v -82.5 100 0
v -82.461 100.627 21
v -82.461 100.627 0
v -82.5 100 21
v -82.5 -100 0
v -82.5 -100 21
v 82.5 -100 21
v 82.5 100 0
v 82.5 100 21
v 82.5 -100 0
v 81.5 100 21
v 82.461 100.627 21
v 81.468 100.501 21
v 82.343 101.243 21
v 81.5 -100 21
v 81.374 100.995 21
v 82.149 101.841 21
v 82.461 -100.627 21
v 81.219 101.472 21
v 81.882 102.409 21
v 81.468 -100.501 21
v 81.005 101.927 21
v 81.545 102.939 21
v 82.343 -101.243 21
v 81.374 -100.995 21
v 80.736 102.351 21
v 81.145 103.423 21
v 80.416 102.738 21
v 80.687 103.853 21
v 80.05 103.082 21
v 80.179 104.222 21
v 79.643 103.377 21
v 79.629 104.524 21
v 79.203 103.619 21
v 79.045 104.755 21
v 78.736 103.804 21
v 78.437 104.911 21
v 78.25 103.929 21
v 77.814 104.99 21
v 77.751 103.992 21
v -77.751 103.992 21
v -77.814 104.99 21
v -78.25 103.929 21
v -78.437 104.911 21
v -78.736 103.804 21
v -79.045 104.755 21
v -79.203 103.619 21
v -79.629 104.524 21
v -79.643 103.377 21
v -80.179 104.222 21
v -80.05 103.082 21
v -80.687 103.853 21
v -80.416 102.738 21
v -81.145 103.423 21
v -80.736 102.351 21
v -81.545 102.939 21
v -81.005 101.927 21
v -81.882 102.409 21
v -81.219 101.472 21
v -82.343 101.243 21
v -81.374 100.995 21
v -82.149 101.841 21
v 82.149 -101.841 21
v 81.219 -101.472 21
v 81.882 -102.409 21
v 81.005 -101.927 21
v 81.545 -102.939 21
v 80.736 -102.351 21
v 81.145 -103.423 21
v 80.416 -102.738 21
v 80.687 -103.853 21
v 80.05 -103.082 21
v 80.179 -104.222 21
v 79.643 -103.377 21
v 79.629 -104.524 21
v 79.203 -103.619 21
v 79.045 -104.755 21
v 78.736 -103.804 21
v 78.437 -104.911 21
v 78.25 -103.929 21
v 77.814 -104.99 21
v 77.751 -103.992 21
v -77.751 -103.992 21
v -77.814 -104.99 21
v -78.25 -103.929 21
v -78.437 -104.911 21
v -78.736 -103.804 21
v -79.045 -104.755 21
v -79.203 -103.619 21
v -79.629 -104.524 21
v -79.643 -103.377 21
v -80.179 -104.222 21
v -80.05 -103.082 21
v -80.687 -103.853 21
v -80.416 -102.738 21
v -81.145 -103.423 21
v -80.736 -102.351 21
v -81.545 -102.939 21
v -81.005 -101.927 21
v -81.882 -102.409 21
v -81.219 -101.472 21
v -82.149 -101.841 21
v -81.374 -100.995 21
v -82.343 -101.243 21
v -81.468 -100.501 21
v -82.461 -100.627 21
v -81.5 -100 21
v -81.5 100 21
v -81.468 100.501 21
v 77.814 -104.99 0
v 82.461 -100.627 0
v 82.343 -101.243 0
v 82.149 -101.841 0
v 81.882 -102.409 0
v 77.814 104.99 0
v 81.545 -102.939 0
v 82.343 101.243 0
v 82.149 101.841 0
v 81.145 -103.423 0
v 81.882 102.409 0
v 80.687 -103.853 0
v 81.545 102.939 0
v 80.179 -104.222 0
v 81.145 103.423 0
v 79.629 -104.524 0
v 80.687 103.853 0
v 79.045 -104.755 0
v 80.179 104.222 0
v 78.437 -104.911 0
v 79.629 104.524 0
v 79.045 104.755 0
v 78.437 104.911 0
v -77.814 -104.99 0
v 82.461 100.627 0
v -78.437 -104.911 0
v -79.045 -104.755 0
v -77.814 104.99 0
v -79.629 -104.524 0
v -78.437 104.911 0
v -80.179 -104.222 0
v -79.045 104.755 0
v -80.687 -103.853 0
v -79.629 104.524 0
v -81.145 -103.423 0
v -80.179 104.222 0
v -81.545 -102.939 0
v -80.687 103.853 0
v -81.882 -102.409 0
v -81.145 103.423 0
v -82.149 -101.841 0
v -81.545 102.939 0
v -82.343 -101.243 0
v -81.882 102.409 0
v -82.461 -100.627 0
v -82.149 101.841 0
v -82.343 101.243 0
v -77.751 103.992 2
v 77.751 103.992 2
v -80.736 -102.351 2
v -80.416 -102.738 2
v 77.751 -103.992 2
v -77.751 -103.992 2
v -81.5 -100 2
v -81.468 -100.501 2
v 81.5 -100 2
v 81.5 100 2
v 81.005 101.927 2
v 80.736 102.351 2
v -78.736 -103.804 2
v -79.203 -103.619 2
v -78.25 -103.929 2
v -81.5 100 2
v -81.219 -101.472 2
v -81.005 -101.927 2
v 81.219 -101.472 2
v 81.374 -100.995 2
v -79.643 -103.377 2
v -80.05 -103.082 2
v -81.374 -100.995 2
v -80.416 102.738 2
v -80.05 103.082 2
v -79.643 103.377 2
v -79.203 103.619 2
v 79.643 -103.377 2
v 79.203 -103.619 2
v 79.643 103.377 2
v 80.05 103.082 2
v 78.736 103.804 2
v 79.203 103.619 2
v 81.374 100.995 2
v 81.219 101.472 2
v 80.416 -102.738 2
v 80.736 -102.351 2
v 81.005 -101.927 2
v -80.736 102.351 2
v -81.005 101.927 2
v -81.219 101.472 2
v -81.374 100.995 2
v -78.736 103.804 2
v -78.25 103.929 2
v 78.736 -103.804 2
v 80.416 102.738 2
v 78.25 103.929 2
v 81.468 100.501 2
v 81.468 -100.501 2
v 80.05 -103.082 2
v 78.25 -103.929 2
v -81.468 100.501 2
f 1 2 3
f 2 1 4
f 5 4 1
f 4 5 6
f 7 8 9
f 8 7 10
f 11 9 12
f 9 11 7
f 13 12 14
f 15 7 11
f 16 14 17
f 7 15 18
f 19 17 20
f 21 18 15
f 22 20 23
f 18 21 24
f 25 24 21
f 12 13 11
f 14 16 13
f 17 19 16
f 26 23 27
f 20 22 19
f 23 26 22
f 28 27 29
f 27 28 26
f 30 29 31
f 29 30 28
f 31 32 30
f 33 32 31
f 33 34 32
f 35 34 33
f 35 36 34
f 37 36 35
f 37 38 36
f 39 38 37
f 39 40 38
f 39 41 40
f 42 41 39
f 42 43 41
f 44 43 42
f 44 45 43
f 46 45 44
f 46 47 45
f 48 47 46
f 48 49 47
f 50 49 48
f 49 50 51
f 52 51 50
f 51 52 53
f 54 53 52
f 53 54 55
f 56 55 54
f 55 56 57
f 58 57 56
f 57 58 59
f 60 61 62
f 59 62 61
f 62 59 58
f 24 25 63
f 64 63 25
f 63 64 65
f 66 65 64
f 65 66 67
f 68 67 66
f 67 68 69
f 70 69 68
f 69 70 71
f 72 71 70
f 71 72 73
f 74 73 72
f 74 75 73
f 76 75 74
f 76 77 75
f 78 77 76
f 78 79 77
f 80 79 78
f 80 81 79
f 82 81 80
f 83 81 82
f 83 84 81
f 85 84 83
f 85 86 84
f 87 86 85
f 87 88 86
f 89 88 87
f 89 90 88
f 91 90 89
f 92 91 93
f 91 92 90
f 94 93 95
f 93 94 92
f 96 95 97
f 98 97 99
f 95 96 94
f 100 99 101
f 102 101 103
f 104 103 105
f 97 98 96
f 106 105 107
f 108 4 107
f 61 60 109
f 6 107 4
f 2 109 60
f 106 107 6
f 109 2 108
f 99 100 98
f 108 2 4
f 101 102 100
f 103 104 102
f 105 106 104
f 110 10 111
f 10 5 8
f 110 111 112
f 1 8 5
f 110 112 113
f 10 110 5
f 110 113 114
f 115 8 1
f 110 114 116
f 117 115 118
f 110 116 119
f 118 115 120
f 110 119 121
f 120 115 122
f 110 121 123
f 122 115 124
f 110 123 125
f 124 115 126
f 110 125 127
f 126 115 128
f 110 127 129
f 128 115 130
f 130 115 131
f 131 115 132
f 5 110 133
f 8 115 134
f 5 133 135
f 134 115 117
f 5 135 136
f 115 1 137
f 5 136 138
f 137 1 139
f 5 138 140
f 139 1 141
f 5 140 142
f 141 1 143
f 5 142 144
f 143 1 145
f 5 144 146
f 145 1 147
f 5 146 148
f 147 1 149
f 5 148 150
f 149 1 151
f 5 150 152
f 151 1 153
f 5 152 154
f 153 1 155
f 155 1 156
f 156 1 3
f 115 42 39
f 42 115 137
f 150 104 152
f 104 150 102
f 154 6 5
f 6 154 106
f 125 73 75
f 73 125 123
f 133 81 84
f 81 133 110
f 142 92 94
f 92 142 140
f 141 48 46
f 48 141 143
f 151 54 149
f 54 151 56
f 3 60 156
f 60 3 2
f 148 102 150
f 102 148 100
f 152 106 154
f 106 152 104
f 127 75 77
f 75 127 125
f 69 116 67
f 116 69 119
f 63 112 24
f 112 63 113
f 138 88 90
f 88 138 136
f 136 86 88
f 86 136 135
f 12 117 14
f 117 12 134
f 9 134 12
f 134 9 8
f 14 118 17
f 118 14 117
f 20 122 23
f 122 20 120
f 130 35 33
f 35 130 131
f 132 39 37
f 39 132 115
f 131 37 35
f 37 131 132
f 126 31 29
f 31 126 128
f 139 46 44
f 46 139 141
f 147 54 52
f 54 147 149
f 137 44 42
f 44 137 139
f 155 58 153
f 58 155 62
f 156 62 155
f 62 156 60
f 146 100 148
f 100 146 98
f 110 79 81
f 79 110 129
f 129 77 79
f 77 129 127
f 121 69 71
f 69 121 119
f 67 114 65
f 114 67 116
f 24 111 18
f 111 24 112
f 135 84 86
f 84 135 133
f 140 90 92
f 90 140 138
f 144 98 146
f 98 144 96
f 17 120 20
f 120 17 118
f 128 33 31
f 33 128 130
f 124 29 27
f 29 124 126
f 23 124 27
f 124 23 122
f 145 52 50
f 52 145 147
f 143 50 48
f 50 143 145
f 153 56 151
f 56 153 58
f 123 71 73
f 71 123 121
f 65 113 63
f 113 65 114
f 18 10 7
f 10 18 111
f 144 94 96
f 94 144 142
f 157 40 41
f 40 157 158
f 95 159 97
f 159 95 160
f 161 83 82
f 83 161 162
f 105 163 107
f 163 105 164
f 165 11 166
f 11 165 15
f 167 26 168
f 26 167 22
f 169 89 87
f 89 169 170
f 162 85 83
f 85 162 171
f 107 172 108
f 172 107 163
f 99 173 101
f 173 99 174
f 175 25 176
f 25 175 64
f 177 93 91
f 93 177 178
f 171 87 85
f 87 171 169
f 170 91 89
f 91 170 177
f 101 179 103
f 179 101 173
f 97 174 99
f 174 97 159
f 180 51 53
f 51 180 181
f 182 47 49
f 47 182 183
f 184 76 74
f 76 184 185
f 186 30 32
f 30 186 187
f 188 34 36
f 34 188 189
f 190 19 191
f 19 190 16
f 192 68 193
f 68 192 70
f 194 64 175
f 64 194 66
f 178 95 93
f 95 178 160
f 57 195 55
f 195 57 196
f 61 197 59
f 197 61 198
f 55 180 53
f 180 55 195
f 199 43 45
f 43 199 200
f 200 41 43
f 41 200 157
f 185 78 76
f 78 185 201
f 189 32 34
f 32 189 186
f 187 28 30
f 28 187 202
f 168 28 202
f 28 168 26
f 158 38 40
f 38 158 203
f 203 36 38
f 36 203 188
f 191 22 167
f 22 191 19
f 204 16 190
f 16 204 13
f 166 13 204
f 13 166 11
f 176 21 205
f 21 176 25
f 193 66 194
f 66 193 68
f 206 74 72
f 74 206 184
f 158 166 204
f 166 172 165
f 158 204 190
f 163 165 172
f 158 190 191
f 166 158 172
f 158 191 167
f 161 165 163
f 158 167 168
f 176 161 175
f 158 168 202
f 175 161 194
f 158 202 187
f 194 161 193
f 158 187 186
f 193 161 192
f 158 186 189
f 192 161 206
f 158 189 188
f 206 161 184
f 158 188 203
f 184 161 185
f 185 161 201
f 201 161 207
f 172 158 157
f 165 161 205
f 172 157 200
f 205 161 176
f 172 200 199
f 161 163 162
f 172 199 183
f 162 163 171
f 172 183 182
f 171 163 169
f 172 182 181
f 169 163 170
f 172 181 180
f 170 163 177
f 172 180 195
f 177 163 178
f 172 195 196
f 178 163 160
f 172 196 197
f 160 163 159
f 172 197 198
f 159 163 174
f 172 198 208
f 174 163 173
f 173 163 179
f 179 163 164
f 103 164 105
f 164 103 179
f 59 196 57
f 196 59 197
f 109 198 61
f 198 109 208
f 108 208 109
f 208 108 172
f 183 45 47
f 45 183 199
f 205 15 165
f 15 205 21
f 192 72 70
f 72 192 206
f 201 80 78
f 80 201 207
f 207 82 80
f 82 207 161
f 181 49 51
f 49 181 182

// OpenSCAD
$fn = 50;


difference() {
	union() {
		hull() {
			translate(v = [-77.5000000000, 100.0000000000, 0]) {
				cylinder(h = 21, r = 5);
			}
			translate(v = [77.5000000000, 100.0000000000, 0]) {
				cylinder(h = 21, r = 5);
			}
			translate(v = [-77.5000000000, -100.0000000000, 0]) {
				cylinder(h = 21, r = 5);
			}
			translate(v = [77.5000000000, -100.0000000000, 0]) {
				cylinder(h = 21, r = 5);
			}
		}
	}
	union() {
		translate(v = [0, 0, 2]) {
			hull() {
				translate(v = [-77.5000000000, 100.0000000000, 0]) {
					cylinder(h = 19, r = 4);
				}
				translate(v = [77.5000000000, 100.0000000000, 0]) {
					cylinder(h = 19, r = 4);
				}
				translate(v = [-77.5000000000, -100.0000000000, 0]) {
					cylinder(h = 19, r = 4);
				}
				translate(v = [77.5000000000, -100.0000000000, 0]) {
					cylinder(h = 19, r = 4);
				}
			}
		}
	}
}
